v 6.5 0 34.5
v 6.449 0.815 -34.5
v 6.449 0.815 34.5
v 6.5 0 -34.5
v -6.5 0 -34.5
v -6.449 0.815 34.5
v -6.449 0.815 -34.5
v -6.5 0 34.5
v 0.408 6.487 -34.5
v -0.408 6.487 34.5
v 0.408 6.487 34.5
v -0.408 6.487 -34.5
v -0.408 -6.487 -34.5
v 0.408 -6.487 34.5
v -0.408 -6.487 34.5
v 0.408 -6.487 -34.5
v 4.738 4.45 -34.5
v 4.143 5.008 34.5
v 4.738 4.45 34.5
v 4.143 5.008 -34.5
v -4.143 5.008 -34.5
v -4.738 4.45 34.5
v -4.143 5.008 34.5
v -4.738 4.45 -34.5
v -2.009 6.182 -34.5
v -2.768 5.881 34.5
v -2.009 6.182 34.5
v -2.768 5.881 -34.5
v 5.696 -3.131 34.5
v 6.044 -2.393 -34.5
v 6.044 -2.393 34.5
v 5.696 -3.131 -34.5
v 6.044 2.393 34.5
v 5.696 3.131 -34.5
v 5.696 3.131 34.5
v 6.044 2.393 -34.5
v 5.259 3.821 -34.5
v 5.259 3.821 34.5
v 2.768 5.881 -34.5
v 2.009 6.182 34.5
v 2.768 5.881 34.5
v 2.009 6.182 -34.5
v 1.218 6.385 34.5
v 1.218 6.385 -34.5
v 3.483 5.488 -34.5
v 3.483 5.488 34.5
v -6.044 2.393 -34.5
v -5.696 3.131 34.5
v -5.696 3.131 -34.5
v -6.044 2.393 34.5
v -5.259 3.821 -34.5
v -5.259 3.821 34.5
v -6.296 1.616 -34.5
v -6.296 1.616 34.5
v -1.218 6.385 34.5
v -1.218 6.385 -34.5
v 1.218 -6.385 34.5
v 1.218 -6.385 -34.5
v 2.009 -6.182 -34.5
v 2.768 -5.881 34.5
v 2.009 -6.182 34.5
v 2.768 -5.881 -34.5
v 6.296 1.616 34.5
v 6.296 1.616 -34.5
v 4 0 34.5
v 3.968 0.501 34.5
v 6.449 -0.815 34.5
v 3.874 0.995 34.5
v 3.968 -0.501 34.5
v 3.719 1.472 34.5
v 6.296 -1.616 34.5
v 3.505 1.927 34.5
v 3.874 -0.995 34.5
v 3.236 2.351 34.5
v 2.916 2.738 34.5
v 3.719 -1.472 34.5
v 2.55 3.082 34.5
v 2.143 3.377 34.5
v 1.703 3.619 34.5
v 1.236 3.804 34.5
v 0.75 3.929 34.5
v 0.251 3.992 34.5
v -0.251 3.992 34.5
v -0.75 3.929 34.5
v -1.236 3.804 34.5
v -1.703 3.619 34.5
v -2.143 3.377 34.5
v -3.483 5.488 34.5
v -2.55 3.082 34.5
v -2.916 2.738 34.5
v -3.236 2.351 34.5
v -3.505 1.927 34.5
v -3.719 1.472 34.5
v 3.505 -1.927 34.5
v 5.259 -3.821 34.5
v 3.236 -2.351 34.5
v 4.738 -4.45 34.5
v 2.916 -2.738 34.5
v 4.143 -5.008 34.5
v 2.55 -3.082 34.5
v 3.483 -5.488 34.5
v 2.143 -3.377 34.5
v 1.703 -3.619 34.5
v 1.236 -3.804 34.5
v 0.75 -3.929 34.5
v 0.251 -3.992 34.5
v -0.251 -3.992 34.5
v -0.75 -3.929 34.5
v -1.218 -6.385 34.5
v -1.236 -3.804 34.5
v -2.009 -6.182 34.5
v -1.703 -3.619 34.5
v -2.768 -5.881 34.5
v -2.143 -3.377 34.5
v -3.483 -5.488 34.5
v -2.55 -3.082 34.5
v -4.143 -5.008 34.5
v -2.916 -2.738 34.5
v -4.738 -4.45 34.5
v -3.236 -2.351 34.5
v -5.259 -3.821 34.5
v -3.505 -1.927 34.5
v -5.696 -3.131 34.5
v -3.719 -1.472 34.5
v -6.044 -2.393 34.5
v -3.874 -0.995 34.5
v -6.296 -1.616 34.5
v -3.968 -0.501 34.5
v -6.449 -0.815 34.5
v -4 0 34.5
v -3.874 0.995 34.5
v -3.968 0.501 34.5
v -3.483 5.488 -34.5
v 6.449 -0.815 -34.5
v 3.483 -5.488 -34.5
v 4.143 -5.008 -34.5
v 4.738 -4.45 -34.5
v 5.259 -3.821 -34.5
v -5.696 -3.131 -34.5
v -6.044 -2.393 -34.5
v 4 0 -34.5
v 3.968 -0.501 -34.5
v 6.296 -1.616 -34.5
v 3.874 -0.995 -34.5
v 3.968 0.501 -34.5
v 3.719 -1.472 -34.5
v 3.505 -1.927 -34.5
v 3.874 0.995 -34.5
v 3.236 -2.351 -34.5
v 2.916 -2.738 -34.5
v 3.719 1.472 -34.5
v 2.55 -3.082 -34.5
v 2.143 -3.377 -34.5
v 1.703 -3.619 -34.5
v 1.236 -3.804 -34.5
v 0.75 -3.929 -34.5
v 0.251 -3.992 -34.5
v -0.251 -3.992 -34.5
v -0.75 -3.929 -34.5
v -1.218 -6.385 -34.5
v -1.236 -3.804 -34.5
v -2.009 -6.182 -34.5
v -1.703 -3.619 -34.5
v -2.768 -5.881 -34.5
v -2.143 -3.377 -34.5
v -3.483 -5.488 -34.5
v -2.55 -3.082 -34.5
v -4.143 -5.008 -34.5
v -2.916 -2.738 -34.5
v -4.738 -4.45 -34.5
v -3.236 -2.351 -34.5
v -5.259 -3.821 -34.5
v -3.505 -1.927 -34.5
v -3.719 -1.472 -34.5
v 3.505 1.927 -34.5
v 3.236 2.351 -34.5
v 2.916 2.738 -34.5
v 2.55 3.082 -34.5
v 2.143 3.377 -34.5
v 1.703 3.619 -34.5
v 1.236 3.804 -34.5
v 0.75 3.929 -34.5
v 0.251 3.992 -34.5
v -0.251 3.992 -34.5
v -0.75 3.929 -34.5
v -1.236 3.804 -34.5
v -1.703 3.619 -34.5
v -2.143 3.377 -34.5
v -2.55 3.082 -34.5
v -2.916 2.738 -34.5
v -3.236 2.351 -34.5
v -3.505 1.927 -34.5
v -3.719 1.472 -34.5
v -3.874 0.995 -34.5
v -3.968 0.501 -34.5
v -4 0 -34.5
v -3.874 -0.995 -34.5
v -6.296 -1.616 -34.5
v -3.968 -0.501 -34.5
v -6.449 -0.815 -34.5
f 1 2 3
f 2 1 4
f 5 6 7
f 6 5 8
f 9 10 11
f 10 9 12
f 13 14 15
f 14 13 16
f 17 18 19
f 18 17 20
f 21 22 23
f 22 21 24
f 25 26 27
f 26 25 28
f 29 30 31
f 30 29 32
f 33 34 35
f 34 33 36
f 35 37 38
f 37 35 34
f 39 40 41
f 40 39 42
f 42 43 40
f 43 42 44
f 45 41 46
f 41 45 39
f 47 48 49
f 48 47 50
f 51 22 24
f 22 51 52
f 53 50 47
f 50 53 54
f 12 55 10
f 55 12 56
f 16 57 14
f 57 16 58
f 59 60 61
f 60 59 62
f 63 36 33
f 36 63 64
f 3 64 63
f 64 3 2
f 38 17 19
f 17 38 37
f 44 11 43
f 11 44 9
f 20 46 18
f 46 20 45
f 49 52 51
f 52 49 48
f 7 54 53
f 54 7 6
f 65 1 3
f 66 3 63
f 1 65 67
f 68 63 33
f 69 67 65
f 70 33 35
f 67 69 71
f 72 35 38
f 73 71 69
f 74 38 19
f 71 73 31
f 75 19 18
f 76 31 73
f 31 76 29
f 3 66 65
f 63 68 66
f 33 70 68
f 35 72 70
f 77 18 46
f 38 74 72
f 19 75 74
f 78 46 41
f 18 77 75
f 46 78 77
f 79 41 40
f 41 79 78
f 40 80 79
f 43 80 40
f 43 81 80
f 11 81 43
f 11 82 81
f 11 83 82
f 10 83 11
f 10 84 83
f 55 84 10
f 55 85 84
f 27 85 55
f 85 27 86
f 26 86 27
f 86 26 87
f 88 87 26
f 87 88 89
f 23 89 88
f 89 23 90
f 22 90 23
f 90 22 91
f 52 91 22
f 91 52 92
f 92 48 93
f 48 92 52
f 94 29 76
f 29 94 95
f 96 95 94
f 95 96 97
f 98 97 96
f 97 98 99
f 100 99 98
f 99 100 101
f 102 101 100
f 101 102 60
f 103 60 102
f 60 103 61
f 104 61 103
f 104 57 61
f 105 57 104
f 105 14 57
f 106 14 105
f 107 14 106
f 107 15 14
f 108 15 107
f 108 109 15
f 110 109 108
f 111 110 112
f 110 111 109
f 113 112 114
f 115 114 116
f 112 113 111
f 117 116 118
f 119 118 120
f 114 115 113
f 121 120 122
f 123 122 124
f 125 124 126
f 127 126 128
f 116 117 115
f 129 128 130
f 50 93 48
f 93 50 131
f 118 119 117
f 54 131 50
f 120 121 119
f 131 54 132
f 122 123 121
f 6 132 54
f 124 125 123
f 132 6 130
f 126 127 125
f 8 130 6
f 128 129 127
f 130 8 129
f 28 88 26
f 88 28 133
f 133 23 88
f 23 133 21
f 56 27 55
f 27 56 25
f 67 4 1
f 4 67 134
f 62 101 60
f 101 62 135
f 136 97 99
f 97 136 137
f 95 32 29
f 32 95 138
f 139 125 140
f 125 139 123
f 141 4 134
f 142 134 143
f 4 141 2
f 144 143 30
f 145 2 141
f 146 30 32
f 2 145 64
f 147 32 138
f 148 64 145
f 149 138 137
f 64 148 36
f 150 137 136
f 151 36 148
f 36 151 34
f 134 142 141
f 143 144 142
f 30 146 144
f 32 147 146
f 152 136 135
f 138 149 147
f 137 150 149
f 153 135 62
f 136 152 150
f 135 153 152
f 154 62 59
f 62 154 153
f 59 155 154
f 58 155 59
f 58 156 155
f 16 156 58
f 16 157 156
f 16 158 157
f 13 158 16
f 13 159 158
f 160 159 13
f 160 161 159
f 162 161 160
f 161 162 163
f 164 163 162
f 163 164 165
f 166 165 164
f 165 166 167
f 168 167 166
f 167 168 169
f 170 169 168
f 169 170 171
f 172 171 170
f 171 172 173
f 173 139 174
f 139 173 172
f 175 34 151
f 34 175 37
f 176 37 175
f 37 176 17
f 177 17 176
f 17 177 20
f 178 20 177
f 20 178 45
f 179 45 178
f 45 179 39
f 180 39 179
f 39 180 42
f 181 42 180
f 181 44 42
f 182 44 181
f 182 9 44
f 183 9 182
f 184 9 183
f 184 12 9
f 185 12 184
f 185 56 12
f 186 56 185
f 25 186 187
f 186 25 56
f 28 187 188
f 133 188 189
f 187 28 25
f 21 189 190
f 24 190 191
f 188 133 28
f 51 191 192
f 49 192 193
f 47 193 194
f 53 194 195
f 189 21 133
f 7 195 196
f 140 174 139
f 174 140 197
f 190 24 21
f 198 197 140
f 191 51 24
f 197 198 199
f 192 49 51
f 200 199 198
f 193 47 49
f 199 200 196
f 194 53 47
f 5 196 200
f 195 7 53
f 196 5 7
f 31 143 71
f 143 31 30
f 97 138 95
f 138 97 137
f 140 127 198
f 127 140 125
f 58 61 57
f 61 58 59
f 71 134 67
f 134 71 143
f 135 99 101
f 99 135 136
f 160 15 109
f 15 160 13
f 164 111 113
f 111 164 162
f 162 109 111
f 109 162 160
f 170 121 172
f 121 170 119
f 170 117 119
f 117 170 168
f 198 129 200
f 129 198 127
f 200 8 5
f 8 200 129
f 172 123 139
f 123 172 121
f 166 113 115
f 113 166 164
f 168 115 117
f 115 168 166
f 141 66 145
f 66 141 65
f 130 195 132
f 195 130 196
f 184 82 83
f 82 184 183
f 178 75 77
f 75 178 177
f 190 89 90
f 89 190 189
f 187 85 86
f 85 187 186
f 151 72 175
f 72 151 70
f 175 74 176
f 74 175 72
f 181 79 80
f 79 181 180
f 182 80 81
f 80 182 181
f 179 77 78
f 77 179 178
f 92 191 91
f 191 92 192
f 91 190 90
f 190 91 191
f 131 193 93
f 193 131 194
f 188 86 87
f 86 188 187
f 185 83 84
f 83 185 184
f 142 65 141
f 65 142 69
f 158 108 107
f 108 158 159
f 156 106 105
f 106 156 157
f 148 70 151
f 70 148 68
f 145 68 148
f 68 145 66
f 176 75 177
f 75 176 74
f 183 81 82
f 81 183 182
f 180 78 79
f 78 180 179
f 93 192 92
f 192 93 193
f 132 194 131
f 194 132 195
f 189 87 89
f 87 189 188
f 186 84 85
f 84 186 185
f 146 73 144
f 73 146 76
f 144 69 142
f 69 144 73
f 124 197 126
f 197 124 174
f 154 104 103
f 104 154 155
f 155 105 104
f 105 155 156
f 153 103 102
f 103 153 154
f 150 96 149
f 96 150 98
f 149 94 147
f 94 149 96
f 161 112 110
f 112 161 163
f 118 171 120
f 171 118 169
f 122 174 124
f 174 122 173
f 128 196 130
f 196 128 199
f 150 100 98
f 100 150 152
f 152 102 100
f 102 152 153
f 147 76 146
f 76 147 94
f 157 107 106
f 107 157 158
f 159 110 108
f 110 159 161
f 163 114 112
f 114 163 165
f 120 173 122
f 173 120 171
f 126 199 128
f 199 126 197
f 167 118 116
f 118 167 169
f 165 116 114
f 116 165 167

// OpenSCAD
$fn = 50;


difference() {
	union() {
		translate(v = [0, 0, -34.5000000000]) {
			cylinder(h = 69, r = 6.5000000000);
		}
	}
	union() {
		translate(v = [0, 0, -100.0000000000]) {
			cylinder(h = 200, r = 4.0000000000);
		}
	}
}
